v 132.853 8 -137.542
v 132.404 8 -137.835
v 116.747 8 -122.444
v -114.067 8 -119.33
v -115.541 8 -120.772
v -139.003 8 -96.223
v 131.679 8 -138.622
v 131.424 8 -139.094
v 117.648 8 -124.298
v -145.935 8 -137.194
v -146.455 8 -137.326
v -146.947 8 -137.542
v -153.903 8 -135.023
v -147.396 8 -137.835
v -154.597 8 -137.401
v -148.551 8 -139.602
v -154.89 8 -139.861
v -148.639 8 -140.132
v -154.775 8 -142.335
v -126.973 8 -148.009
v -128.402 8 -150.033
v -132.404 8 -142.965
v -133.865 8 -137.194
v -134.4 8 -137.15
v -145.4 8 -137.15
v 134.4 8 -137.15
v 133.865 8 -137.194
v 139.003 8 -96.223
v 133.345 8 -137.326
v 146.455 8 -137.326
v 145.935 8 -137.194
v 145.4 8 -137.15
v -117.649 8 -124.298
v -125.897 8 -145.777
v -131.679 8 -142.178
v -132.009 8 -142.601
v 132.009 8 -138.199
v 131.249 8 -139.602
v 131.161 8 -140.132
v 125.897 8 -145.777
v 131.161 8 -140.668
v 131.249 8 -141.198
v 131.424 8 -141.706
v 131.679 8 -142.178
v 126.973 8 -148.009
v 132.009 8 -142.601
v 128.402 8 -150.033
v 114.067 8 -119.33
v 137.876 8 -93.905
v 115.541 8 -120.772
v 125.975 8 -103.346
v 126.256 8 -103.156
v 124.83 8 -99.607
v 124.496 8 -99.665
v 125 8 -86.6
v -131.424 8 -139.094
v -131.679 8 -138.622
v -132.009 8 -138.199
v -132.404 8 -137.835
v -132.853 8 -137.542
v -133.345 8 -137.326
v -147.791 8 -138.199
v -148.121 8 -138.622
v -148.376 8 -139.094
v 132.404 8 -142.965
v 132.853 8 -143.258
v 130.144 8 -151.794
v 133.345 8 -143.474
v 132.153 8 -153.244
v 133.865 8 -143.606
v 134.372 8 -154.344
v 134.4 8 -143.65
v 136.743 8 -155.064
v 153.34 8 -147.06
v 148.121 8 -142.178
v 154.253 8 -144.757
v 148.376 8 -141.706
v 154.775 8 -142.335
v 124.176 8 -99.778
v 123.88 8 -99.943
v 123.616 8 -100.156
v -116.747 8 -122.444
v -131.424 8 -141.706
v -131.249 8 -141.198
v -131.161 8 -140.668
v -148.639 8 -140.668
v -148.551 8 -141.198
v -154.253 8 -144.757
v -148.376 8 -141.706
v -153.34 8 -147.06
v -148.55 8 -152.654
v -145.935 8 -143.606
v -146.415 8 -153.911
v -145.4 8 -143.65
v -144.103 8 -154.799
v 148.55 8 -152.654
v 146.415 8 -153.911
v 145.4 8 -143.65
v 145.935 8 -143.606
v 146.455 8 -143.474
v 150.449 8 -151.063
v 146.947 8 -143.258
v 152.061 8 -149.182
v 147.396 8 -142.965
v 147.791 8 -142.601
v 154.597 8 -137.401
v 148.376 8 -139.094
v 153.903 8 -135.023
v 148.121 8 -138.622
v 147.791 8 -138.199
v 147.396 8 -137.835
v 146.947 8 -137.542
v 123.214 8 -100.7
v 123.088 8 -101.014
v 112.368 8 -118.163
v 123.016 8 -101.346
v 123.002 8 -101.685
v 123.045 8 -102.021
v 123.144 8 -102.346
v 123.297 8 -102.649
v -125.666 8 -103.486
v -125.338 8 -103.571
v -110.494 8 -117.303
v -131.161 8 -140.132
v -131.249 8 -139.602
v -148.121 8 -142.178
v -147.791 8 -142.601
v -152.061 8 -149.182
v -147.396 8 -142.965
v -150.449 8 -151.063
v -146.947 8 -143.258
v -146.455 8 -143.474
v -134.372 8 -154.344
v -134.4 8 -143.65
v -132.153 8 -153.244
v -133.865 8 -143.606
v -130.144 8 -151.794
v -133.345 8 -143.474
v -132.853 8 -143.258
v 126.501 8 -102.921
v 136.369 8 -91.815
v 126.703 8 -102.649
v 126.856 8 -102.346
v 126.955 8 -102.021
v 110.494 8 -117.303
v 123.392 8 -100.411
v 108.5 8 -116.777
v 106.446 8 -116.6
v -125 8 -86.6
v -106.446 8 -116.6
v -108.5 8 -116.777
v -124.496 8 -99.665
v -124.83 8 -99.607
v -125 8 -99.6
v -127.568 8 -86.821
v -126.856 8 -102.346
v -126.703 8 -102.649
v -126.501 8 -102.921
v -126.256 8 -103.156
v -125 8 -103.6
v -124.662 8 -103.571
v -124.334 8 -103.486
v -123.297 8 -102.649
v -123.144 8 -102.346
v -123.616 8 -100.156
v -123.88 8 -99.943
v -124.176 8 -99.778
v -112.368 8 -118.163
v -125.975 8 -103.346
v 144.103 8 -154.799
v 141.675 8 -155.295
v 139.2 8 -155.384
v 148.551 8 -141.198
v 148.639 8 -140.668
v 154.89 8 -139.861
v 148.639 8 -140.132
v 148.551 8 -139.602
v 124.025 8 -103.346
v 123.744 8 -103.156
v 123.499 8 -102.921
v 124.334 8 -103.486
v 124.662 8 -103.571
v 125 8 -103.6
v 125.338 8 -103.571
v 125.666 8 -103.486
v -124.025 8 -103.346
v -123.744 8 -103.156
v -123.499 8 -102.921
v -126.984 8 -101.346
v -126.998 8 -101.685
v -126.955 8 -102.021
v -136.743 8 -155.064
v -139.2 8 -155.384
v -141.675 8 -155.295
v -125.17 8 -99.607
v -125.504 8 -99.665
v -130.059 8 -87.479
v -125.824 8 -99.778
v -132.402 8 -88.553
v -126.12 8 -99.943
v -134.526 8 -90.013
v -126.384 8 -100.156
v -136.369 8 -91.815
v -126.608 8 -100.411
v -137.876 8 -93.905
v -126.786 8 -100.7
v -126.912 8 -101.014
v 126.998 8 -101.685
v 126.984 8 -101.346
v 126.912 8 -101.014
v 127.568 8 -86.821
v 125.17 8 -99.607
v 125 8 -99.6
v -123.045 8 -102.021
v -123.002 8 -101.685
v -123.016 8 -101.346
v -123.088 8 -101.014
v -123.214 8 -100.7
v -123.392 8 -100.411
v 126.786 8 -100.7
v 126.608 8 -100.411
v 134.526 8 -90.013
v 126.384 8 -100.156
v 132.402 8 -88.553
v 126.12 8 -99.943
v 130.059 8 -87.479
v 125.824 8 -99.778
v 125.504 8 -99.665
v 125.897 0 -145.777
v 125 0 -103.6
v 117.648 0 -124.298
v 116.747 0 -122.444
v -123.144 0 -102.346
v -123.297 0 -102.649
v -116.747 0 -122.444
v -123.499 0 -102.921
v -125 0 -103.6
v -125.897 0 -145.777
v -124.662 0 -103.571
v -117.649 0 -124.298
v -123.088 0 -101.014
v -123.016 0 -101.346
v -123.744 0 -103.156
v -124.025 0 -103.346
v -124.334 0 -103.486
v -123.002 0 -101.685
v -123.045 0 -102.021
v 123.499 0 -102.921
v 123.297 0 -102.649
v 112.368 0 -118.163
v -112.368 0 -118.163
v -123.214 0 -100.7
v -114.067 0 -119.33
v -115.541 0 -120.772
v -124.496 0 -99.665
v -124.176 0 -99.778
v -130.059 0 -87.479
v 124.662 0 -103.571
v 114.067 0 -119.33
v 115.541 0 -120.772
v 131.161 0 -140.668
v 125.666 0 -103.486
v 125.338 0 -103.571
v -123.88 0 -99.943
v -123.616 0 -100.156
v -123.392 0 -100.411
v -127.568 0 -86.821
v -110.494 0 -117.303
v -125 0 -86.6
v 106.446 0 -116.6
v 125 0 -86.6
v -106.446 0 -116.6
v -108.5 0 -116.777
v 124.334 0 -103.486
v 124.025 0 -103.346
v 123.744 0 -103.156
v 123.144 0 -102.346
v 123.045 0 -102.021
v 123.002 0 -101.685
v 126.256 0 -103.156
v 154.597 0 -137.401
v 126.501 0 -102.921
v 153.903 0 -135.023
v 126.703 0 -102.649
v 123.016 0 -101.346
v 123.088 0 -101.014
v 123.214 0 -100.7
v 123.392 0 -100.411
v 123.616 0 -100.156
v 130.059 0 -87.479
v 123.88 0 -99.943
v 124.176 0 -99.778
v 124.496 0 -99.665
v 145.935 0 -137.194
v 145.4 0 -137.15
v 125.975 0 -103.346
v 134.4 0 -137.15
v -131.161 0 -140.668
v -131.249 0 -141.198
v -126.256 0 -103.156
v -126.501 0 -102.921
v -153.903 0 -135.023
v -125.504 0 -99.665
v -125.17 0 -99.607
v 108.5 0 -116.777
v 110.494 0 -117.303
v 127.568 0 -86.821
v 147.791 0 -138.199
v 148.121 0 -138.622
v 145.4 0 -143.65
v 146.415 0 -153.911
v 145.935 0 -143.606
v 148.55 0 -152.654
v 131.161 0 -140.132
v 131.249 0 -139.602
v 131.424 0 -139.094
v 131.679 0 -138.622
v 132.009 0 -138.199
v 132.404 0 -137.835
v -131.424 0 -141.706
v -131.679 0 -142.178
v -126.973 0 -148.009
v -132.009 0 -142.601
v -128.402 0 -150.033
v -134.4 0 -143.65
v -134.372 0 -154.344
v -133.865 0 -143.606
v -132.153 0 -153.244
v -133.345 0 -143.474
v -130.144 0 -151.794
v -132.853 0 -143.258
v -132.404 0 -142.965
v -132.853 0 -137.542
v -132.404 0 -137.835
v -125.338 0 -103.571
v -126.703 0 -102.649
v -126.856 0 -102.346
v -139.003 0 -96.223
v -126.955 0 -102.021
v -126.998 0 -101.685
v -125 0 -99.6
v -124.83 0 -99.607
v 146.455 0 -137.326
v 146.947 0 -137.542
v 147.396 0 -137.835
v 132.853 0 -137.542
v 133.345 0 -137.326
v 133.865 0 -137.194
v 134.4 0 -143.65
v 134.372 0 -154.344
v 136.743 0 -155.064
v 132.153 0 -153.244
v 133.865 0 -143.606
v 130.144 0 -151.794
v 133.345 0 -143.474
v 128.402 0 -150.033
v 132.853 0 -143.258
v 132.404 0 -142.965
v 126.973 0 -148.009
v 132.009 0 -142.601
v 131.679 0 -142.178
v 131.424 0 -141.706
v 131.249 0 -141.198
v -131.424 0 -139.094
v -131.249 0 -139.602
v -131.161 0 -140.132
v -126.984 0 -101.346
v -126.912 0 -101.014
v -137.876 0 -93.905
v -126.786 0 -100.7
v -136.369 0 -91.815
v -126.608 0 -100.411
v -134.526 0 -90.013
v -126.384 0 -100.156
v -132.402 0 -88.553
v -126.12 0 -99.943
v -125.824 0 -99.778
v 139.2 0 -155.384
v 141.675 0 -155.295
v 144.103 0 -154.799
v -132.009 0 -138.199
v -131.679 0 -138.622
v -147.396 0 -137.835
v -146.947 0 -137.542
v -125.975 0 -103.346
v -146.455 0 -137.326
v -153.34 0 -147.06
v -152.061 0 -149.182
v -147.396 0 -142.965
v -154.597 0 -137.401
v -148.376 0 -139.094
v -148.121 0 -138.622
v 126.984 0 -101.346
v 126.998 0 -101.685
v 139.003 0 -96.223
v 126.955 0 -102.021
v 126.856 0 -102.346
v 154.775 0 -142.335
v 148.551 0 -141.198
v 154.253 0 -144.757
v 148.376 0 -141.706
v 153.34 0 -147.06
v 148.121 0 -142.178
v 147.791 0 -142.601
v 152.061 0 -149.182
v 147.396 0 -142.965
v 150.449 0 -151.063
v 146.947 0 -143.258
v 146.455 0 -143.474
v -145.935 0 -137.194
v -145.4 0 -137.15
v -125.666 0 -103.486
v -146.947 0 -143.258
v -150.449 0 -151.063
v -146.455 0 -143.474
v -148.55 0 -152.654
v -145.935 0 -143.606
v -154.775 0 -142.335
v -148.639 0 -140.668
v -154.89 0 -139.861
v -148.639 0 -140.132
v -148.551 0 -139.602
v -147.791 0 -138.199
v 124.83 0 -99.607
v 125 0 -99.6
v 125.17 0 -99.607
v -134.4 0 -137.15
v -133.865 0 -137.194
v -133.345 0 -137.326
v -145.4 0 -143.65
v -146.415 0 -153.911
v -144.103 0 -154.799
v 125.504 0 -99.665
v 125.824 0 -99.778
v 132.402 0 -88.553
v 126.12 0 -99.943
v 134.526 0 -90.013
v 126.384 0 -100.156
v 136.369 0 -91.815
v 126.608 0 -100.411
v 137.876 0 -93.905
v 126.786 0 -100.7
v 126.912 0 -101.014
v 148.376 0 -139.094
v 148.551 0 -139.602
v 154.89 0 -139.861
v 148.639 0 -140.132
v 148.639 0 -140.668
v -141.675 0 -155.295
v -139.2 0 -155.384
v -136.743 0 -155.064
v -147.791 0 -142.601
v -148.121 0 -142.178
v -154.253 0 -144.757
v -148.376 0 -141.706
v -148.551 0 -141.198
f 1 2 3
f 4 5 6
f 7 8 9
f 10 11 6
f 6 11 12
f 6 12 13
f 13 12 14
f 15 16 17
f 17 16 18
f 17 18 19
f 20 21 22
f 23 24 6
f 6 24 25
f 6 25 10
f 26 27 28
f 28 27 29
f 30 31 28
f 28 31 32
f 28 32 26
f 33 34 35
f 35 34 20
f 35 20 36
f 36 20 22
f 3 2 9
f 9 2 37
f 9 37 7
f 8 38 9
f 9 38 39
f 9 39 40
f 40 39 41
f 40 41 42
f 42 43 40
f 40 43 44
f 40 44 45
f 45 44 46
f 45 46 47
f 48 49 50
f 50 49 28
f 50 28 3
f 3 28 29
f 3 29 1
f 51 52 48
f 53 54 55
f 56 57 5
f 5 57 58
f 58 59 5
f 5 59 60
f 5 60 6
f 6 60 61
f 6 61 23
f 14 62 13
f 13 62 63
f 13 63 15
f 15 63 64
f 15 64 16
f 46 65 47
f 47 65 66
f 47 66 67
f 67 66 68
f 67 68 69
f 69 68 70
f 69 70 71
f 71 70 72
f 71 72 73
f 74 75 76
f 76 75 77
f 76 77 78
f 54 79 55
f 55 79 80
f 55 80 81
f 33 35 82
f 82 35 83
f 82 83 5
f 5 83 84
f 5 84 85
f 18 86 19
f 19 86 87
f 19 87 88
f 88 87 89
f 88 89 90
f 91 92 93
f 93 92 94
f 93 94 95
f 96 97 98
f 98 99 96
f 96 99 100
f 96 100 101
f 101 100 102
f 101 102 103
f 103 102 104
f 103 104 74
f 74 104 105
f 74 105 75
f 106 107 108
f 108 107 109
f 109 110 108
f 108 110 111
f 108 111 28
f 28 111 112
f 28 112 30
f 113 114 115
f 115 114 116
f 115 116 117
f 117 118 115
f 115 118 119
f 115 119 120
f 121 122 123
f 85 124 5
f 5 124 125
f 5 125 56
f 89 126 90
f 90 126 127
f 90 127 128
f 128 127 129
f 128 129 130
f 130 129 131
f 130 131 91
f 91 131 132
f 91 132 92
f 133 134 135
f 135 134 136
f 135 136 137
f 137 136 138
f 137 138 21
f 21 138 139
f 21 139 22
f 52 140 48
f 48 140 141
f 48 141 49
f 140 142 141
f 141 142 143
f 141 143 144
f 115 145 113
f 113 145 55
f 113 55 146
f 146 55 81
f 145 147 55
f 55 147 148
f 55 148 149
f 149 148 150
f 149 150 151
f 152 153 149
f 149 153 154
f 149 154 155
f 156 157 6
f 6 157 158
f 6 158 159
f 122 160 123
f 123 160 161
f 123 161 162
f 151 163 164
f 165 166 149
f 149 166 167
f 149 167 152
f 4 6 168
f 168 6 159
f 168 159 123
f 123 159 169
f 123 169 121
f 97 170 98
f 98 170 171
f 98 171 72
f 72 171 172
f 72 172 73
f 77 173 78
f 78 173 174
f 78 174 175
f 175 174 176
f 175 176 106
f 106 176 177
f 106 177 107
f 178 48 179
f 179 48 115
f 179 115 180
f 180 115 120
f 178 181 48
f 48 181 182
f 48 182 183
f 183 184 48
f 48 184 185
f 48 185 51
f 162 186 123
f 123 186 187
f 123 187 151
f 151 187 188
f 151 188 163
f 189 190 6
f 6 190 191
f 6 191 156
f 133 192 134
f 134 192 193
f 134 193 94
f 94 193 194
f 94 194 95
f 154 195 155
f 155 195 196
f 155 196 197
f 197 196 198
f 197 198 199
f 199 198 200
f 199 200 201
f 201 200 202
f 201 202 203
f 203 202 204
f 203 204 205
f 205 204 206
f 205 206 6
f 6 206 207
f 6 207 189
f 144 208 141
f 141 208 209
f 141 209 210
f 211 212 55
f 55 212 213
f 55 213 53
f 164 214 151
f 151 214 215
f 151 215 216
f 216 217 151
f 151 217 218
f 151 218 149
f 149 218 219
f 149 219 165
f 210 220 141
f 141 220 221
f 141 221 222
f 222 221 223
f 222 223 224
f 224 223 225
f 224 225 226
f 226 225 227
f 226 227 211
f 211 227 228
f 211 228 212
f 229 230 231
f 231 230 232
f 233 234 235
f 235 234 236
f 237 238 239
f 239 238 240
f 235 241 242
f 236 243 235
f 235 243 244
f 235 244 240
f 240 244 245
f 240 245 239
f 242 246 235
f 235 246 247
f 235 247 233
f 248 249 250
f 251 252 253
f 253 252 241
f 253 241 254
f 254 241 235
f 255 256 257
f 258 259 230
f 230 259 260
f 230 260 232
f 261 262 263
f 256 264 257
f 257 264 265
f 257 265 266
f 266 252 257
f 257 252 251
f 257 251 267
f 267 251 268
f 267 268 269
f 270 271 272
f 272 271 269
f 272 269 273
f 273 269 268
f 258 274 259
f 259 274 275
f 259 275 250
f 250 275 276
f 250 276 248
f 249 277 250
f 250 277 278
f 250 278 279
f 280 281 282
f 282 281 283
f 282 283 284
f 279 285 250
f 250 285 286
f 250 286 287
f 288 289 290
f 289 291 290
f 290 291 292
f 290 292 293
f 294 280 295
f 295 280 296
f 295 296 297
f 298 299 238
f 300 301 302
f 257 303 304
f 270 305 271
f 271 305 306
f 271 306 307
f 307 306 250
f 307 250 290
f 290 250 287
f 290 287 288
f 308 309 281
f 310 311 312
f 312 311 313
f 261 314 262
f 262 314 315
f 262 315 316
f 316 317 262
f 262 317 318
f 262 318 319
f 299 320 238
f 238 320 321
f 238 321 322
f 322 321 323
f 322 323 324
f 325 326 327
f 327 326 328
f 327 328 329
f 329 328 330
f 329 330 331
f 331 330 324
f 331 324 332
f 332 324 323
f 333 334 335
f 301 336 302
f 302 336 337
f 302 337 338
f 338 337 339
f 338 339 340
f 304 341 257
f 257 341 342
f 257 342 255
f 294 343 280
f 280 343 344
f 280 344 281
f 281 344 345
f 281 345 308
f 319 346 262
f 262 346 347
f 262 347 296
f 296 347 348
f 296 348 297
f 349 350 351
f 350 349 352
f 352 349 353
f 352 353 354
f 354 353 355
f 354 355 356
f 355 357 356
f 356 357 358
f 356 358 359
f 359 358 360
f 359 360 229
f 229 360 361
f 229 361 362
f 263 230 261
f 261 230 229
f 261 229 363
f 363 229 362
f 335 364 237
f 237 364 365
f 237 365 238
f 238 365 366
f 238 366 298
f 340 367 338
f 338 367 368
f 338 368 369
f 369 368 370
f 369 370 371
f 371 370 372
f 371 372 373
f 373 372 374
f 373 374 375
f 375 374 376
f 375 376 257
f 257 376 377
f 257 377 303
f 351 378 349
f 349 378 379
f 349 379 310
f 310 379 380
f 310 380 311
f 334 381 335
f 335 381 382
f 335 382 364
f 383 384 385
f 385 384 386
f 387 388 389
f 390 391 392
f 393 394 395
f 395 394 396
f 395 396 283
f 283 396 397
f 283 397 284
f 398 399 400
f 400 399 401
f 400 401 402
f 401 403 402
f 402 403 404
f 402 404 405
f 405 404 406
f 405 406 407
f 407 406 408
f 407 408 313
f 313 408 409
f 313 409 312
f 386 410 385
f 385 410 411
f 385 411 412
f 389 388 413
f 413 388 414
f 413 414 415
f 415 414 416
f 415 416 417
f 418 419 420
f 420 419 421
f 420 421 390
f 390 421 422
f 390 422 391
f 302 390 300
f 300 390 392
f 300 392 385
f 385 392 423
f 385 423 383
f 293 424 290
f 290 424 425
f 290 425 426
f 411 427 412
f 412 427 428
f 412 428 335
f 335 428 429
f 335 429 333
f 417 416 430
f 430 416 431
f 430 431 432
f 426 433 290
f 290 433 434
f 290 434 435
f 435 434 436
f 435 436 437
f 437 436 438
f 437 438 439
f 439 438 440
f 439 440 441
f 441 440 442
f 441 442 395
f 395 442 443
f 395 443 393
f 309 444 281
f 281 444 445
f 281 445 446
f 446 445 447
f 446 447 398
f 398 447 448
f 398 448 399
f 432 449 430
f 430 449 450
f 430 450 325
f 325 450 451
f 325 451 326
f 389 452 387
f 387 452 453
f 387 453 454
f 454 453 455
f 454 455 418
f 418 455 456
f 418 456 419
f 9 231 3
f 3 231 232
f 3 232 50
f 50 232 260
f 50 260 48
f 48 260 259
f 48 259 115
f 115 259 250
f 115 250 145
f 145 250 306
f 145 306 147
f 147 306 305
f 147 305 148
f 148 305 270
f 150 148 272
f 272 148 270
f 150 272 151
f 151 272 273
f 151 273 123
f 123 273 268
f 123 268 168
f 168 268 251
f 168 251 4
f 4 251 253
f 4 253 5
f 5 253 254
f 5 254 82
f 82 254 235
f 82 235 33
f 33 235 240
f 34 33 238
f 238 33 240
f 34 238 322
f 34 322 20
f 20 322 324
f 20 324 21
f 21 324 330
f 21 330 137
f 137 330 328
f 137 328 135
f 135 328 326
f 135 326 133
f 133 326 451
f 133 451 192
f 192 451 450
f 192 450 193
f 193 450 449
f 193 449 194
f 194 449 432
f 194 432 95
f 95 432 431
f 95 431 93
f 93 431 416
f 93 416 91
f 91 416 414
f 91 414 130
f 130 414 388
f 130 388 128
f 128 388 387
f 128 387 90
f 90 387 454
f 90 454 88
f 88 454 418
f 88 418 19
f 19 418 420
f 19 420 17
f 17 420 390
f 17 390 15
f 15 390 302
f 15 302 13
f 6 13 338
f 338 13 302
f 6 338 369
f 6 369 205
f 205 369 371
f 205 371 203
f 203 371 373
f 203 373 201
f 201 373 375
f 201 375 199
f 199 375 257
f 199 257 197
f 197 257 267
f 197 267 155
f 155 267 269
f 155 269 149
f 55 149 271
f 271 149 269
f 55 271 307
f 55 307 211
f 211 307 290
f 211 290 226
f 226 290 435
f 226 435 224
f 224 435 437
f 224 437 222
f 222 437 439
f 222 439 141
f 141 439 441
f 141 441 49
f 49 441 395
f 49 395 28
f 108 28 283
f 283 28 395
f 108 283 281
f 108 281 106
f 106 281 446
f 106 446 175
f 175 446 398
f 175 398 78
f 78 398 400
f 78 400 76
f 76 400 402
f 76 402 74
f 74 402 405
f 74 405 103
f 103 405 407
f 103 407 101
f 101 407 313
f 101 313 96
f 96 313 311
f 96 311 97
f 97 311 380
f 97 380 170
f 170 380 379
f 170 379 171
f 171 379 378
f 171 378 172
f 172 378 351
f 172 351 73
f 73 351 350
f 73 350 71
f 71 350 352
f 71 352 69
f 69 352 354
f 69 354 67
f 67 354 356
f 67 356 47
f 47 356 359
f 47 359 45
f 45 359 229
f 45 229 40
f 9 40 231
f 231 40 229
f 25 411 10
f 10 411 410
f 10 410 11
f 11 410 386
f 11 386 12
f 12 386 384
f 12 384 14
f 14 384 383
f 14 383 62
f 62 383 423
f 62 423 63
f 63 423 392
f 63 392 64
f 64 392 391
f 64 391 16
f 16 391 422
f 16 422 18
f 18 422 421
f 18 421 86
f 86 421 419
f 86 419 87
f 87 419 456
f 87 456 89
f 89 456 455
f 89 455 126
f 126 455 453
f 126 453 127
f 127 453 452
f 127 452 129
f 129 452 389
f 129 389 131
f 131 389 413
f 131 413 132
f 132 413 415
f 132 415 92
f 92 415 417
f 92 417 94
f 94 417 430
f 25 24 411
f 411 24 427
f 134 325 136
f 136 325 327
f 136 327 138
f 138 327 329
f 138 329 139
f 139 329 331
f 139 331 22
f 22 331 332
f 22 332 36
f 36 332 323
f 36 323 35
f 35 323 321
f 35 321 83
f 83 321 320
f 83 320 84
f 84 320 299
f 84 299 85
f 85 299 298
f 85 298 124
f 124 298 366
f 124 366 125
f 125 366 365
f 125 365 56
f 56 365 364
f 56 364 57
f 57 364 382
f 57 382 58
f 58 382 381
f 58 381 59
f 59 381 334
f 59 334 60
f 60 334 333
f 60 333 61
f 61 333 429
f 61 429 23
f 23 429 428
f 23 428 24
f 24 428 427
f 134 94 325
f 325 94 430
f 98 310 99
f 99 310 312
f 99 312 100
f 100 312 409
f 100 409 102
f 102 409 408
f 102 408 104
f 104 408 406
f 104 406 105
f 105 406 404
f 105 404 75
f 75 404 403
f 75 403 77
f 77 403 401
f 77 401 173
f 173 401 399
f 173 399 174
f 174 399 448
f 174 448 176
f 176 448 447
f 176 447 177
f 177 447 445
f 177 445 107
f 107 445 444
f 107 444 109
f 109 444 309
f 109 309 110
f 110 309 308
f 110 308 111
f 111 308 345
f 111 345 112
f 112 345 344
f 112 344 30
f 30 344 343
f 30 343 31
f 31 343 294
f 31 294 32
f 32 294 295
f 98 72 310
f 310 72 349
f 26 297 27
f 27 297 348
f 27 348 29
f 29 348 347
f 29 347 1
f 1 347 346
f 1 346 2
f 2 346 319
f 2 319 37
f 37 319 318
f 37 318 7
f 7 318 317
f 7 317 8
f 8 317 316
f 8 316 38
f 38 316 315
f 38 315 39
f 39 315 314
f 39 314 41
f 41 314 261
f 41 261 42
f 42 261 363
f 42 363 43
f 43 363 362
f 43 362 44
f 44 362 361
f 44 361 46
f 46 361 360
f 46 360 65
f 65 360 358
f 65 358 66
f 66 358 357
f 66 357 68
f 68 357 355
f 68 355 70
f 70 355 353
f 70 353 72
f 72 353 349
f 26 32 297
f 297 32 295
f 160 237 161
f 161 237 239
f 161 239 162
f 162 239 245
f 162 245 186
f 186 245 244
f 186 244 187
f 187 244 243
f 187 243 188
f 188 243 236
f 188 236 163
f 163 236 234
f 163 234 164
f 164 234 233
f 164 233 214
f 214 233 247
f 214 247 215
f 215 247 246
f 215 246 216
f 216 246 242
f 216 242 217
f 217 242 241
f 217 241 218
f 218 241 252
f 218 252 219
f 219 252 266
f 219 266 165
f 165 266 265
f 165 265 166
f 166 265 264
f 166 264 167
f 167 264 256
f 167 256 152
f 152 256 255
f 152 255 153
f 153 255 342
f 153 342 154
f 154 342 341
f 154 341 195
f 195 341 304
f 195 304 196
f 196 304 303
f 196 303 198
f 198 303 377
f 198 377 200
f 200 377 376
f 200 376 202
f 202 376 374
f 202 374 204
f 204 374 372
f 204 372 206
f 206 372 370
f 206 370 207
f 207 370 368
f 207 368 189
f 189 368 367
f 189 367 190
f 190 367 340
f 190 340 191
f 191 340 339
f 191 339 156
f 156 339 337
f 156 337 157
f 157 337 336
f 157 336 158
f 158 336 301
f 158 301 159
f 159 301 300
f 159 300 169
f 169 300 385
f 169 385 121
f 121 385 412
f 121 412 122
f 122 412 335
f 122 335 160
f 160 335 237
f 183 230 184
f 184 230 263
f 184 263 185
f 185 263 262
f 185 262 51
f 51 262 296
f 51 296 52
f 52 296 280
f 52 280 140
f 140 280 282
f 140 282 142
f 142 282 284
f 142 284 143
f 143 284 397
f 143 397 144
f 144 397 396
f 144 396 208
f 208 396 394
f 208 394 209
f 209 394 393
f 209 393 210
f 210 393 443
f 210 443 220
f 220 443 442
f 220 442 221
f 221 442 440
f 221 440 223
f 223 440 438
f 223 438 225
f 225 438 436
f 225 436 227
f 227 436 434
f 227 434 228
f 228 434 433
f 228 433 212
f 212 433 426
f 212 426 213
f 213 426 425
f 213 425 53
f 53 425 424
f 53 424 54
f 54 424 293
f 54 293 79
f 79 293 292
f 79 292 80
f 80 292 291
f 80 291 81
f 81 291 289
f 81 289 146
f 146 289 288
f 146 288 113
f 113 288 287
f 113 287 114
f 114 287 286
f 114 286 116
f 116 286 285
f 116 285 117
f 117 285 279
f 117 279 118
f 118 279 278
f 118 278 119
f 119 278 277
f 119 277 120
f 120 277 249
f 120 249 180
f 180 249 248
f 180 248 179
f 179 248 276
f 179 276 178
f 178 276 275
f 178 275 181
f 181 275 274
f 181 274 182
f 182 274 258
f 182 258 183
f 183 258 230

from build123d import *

# Parameters (mm, degrees)
SKETCH1_R           = 2
BOSS_EXTRUDE1_DEPTH = 8


with BuildPart() as part:
    # Sketch1 → Boss-Extrude1 (new body)
    with BuildSketch(Plane(origin=(0, 0, 0), x_dir=(1, 0, 0), z_dir=(0, 1, 0))):
        with BuildLine():
            Line((-125.897027312, 145.777430233), (-117.648504662, 124.298055814))
            ThreePointArc((-117.648504662, 124.298055814), (-113.242326544, 118.710021986), (-106.446126512, 116.6))
            Line((-106.446126512, 116.6), (106.446126512, 116.6))
            ThreePointArc((106.446126512, 116.6), (113.242326544, 118.710021986), (117.648504662, 124.298055814))
            Line((117.648504662, 124.298055814), (125.897027312, 145.777430233))
            ThreePointArc((125.897027312, 145.777430233), (145.277430233, 154.402972688), (153.902972688, 135.022569767))
            Line((153.902972688, 135.022569767), (139.002972688, 96.222569767))
            ThreePointArc((139.002972688, 96.222569767), (133.495250041, 89.237527482), (125, 86.6))
            Line((125, 86.6), (-125, 86.6))
            ThreePointArc((-125, 86.6), (-133.495250041, 89.237527482), (-139.002972688, 96.222569767))
            Line((-139.002972688, 96.222569767), (-153.902972688, 135.022569767))
            ThreePointArc((-153.902972688, 135.022569767), (-145.277430233, 154.402972688), (-125.897027312, 145.777430233))
        make_face()
        with Locations(Location((-125, 101.6, 0), (0, 0, 270))):
            Circle(SKETCH1_R, mode=Mode.SUBTRACT)
        with Locations(Location((125, 101.6, 0), (0, 0, 270))):
            Circle(SKETCH1_R, mode=Mode.SUBTRACT)
        with BuildLine():
            Line((-145.4, 143.65), (-134.4, 143.65))
            ThreePointArc((-134.4, 143.65), (-131.15, 140.4), (-134.4, 137.15))
            Line((-134.4, 137.15), (-145.4, 137.15))
            ThreePointArc((-145.4, 137.15), (-148.65, 140.4), (-145.4, 143.65))
        make_face(mode=Mode.SUBTRACT)
        with BuildLine():
            Line((145.4, 137.15), (134.4, 137.15))
            ThreePointArc((134.4, 137.15), (131.15, 140.4), (134.4, 143.65))
            Line((134.4, 143.65), (145.4, 143.65))
            ThreePointArc((145.4, 143.65), (148.65, 140.4), (145.4, 137.15))
        make_face(mode=Mode.SUBTRACT)
    extrude(amount=BOSS_EXTRUDE1_DEPTH)


solid = part.part
